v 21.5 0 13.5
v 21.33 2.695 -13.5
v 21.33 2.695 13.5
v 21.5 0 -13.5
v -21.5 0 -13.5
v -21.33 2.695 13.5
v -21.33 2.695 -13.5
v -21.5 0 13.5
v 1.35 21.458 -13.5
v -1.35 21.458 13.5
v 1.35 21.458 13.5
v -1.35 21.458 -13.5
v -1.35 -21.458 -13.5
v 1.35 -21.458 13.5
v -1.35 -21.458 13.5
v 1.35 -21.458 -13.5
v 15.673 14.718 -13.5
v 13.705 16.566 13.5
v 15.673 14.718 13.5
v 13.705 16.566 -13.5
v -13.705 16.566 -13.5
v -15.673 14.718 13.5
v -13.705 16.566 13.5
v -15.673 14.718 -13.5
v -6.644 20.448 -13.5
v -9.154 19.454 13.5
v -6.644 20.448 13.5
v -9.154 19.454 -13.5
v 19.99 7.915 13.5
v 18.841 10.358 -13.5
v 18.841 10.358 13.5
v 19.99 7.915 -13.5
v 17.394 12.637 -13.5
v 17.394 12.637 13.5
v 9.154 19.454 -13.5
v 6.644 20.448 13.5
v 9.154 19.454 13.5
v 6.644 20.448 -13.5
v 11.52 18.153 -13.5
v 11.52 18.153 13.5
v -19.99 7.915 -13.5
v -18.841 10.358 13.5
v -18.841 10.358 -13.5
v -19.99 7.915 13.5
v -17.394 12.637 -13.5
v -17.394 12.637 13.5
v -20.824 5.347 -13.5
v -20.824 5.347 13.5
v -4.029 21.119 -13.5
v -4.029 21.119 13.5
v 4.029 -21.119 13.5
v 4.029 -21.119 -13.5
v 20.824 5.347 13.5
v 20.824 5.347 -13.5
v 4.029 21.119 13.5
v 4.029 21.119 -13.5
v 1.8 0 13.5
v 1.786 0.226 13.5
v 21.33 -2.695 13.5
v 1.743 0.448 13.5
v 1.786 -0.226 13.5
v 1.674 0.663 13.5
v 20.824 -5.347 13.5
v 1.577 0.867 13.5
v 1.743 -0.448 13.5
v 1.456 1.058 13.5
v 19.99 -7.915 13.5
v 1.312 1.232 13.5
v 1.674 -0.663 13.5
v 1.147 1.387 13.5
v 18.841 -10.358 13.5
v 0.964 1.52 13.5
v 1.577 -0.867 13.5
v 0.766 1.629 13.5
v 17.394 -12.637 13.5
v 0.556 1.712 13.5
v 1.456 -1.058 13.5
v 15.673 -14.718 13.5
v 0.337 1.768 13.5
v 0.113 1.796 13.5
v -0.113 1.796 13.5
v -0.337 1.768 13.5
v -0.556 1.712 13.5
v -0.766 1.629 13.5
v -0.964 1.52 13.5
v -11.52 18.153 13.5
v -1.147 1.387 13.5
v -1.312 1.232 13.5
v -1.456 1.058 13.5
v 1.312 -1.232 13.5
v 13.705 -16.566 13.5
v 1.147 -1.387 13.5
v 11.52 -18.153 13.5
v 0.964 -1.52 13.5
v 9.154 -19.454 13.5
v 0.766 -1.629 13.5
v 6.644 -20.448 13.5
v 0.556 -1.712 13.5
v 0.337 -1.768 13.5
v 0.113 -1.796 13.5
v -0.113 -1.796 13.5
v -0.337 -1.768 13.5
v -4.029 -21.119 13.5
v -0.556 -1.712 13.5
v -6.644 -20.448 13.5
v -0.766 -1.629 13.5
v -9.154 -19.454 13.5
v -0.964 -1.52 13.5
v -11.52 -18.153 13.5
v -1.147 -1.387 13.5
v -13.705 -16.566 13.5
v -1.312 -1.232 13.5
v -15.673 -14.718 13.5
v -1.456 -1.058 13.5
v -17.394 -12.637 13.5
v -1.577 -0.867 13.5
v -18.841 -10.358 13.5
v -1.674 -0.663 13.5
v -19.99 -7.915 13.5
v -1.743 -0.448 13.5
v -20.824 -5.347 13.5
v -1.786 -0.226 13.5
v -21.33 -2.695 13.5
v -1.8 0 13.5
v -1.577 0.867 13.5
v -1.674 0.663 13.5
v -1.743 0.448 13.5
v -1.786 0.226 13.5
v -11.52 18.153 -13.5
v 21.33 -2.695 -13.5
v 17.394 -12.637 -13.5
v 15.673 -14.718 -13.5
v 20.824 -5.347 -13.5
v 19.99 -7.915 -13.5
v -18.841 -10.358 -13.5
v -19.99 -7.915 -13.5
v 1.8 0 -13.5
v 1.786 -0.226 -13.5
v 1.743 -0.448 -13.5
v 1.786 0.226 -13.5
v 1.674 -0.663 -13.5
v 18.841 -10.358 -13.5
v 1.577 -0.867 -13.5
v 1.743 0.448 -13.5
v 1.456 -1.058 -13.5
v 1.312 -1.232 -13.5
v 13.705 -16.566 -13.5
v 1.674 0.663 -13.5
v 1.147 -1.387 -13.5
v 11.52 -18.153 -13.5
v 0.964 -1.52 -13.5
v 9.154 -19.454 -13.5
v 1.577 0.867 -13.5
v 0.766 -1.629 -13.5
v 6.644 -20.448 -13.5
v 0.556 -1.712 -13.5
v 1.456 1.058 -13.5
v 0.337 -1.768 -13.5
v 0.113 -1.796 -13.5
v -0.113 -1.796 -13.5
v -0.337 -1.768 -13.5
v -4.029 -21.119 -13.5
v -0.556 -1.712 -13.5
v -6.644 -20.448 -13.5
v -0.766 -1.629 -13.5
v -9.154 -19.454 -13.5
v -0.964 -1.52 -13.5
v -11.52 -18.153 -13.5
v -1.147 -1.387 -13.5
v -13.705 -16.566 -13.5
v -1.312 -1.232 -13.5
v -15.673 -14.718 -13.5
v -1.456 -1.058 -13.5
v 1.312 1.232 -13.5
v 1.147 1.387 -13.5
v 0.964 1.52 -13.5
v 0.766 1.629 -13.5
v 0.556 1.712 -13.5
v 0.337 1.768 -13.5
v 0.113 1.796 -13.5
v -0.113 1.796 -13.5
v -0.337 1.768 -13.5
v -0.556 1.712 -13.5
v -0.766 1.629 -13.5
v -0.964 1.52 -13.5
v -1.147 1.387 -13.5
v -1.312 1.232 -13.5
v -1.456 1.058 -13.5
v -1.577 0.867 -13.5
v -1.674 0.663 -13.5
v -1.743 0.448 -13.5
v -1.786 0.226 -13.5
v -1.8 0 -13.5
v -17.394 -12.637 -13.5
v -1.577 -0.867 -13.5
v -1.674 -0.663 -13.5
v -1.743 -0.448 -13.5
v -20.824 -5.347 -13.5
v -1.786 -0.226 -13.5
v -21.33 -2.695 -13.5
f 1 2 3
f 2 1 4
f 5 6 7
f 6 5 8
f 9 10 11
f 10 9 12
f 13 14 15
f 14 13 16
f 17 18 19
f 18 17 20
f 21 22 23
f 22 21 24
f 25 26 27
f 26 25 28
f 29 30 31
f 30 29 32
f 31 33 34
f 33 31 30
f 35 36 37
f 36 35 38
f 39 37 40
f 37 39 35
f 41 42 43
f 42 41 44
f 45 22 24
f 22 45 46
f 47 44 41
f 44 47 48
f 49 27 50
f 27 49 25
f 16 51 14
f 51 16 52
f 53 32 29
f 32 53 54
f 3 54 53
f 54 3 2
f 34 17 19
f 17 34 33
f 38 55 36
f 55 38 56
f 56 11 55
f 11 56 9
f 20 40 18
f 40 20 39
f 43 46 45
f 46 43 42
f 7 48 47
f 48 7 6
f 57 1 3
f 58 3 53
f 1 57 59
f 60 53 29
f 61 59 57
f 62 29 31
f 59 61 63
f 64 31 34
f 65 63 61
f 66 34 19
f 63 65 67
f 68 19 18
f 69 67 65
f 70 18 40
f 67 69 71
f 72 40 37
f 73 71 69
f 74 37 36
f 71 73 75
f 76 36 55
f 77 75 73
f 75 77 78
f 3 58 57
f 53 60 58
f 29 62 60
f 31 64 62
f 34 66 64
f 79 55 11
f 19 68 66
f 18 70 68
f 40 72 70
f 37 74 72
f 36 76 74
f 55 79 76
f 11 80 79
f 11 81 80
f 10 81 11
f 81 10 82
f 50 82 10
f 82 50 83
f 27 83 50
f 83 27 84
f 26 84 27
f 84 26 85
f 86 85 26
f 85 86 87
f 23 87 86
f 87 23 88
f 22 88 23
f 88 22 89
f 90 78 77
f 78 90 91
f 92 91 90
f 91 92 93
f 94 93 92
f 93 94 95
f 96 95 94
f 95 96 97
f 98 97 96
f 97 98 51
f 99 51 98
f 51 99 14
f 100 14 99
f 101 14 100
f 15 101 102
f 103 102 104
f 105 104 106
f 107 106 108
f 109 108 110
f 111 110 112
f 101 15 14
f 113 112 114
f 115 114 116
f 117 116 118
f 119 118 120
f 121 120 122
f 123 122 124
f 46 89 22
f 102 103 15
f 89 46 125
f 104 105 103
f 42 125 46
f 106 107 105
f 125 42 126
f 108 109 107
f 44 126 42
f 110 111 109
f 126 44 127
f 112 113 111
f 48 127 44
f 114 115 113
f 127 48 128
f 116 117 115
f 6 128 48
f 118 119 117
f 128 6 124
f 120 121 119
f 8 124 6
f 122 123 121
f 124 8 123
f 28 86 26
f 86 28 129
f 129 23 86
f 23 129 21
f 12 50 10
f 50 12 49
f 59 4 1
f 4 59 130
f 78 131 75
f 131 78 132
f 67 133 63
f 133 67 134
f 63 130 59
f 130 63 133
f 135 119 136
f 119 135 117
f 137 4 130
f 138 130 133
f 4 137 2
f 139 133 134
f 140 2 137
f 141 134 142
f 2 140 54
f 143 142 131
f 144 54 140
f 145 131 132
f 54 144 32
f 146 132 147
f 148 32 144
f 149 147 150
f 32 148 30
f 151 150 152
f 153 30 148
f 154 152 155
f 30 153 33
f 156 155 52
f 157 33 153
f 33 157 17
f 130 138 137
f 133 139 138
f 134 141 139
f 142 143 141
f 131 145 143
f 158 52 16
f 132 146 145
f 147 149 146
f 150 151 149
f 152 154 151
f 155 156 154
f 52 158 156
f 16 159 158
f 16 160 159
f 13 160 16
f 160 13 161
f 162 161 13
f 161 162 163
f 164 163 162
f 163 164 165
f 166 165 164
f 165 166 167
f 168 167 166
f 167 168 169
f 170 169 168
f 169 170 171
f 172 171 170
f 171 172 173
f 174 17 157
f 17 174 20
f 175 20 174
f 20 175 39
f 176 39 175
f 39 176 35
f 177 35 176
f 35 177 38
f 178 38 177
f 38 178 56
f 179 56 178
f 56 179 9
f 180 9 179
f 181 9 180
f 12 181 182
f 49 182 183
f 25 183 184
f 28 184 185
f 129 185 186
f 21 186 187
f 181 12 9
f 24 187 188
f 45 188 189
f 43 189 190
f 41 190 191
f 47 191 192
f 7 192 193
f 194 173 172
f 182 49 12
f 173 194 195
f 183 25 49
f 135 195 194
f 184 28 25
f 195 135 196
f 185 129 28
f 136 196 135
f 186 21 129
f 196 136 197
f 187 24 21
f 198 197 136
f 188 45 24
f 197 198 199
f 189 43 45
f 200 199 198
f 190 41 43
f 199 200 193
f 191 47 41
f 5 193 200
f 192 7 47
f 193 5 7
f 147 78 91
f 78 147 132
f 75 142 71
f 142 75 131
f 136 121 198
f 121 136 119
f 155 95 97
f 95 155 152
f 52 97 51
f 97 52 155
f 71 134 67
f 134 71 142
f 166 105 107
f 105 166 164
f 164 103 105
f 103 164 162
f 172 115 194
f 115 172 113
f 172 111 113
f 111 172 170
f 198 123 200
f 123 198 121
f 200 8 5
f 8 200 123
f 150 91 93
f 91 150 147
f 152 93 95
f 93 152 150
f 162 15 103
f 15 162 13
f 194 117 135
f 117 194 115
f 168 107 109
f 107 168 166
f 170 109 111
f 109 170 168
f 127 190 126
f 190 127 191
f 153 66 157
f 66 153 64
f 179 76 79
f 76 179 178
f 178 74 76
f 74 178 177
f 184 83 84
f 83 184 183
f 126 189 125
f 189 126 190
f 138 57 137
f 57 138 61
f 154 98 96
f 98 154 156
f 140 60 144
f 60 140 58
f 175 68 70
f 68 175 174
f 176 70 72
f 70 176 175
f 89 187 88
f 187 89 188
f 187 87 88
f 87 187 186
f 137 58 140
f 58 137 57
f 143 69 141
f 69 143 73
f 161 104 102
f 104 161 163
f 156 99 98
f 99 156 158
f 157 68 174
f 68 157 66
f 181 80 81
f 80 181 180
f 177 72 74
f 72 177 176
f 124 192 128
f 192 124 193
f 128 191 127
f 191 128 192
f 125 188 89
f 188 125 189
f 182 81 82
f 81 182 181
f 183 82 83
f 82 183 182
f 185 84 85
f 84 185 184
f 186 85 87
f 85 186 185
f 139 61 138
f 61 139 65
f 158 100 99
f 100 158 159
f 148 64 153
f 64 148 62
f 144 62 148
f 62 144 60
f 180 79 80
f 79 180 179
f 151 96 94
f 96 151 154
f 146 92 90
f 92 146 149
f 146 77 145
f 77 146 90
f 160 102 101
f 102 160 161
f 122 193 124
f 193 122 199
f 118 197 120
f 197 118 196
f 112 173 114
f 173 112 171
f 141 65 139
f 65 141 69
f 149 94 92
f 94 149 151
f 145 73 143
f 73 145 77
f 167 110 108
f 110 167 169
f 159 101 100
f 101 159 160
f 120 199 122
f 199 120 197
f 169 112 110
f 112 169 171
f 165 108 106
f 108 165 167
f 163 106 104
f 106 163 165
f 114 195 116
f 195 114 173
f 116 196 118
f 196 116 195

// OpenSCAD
$fn = 50;


difference() {
	union() {
		translate(v = [0, 0, -13.5000000000]) {
			cylinder(h = 27, r = 21.5000000000);
		}
	}
	union() {
		translate(v = [0, 0, -100.0000000000]) {
			cylinder(h = 200, r = 1.8000000000);
		}
	}
}
